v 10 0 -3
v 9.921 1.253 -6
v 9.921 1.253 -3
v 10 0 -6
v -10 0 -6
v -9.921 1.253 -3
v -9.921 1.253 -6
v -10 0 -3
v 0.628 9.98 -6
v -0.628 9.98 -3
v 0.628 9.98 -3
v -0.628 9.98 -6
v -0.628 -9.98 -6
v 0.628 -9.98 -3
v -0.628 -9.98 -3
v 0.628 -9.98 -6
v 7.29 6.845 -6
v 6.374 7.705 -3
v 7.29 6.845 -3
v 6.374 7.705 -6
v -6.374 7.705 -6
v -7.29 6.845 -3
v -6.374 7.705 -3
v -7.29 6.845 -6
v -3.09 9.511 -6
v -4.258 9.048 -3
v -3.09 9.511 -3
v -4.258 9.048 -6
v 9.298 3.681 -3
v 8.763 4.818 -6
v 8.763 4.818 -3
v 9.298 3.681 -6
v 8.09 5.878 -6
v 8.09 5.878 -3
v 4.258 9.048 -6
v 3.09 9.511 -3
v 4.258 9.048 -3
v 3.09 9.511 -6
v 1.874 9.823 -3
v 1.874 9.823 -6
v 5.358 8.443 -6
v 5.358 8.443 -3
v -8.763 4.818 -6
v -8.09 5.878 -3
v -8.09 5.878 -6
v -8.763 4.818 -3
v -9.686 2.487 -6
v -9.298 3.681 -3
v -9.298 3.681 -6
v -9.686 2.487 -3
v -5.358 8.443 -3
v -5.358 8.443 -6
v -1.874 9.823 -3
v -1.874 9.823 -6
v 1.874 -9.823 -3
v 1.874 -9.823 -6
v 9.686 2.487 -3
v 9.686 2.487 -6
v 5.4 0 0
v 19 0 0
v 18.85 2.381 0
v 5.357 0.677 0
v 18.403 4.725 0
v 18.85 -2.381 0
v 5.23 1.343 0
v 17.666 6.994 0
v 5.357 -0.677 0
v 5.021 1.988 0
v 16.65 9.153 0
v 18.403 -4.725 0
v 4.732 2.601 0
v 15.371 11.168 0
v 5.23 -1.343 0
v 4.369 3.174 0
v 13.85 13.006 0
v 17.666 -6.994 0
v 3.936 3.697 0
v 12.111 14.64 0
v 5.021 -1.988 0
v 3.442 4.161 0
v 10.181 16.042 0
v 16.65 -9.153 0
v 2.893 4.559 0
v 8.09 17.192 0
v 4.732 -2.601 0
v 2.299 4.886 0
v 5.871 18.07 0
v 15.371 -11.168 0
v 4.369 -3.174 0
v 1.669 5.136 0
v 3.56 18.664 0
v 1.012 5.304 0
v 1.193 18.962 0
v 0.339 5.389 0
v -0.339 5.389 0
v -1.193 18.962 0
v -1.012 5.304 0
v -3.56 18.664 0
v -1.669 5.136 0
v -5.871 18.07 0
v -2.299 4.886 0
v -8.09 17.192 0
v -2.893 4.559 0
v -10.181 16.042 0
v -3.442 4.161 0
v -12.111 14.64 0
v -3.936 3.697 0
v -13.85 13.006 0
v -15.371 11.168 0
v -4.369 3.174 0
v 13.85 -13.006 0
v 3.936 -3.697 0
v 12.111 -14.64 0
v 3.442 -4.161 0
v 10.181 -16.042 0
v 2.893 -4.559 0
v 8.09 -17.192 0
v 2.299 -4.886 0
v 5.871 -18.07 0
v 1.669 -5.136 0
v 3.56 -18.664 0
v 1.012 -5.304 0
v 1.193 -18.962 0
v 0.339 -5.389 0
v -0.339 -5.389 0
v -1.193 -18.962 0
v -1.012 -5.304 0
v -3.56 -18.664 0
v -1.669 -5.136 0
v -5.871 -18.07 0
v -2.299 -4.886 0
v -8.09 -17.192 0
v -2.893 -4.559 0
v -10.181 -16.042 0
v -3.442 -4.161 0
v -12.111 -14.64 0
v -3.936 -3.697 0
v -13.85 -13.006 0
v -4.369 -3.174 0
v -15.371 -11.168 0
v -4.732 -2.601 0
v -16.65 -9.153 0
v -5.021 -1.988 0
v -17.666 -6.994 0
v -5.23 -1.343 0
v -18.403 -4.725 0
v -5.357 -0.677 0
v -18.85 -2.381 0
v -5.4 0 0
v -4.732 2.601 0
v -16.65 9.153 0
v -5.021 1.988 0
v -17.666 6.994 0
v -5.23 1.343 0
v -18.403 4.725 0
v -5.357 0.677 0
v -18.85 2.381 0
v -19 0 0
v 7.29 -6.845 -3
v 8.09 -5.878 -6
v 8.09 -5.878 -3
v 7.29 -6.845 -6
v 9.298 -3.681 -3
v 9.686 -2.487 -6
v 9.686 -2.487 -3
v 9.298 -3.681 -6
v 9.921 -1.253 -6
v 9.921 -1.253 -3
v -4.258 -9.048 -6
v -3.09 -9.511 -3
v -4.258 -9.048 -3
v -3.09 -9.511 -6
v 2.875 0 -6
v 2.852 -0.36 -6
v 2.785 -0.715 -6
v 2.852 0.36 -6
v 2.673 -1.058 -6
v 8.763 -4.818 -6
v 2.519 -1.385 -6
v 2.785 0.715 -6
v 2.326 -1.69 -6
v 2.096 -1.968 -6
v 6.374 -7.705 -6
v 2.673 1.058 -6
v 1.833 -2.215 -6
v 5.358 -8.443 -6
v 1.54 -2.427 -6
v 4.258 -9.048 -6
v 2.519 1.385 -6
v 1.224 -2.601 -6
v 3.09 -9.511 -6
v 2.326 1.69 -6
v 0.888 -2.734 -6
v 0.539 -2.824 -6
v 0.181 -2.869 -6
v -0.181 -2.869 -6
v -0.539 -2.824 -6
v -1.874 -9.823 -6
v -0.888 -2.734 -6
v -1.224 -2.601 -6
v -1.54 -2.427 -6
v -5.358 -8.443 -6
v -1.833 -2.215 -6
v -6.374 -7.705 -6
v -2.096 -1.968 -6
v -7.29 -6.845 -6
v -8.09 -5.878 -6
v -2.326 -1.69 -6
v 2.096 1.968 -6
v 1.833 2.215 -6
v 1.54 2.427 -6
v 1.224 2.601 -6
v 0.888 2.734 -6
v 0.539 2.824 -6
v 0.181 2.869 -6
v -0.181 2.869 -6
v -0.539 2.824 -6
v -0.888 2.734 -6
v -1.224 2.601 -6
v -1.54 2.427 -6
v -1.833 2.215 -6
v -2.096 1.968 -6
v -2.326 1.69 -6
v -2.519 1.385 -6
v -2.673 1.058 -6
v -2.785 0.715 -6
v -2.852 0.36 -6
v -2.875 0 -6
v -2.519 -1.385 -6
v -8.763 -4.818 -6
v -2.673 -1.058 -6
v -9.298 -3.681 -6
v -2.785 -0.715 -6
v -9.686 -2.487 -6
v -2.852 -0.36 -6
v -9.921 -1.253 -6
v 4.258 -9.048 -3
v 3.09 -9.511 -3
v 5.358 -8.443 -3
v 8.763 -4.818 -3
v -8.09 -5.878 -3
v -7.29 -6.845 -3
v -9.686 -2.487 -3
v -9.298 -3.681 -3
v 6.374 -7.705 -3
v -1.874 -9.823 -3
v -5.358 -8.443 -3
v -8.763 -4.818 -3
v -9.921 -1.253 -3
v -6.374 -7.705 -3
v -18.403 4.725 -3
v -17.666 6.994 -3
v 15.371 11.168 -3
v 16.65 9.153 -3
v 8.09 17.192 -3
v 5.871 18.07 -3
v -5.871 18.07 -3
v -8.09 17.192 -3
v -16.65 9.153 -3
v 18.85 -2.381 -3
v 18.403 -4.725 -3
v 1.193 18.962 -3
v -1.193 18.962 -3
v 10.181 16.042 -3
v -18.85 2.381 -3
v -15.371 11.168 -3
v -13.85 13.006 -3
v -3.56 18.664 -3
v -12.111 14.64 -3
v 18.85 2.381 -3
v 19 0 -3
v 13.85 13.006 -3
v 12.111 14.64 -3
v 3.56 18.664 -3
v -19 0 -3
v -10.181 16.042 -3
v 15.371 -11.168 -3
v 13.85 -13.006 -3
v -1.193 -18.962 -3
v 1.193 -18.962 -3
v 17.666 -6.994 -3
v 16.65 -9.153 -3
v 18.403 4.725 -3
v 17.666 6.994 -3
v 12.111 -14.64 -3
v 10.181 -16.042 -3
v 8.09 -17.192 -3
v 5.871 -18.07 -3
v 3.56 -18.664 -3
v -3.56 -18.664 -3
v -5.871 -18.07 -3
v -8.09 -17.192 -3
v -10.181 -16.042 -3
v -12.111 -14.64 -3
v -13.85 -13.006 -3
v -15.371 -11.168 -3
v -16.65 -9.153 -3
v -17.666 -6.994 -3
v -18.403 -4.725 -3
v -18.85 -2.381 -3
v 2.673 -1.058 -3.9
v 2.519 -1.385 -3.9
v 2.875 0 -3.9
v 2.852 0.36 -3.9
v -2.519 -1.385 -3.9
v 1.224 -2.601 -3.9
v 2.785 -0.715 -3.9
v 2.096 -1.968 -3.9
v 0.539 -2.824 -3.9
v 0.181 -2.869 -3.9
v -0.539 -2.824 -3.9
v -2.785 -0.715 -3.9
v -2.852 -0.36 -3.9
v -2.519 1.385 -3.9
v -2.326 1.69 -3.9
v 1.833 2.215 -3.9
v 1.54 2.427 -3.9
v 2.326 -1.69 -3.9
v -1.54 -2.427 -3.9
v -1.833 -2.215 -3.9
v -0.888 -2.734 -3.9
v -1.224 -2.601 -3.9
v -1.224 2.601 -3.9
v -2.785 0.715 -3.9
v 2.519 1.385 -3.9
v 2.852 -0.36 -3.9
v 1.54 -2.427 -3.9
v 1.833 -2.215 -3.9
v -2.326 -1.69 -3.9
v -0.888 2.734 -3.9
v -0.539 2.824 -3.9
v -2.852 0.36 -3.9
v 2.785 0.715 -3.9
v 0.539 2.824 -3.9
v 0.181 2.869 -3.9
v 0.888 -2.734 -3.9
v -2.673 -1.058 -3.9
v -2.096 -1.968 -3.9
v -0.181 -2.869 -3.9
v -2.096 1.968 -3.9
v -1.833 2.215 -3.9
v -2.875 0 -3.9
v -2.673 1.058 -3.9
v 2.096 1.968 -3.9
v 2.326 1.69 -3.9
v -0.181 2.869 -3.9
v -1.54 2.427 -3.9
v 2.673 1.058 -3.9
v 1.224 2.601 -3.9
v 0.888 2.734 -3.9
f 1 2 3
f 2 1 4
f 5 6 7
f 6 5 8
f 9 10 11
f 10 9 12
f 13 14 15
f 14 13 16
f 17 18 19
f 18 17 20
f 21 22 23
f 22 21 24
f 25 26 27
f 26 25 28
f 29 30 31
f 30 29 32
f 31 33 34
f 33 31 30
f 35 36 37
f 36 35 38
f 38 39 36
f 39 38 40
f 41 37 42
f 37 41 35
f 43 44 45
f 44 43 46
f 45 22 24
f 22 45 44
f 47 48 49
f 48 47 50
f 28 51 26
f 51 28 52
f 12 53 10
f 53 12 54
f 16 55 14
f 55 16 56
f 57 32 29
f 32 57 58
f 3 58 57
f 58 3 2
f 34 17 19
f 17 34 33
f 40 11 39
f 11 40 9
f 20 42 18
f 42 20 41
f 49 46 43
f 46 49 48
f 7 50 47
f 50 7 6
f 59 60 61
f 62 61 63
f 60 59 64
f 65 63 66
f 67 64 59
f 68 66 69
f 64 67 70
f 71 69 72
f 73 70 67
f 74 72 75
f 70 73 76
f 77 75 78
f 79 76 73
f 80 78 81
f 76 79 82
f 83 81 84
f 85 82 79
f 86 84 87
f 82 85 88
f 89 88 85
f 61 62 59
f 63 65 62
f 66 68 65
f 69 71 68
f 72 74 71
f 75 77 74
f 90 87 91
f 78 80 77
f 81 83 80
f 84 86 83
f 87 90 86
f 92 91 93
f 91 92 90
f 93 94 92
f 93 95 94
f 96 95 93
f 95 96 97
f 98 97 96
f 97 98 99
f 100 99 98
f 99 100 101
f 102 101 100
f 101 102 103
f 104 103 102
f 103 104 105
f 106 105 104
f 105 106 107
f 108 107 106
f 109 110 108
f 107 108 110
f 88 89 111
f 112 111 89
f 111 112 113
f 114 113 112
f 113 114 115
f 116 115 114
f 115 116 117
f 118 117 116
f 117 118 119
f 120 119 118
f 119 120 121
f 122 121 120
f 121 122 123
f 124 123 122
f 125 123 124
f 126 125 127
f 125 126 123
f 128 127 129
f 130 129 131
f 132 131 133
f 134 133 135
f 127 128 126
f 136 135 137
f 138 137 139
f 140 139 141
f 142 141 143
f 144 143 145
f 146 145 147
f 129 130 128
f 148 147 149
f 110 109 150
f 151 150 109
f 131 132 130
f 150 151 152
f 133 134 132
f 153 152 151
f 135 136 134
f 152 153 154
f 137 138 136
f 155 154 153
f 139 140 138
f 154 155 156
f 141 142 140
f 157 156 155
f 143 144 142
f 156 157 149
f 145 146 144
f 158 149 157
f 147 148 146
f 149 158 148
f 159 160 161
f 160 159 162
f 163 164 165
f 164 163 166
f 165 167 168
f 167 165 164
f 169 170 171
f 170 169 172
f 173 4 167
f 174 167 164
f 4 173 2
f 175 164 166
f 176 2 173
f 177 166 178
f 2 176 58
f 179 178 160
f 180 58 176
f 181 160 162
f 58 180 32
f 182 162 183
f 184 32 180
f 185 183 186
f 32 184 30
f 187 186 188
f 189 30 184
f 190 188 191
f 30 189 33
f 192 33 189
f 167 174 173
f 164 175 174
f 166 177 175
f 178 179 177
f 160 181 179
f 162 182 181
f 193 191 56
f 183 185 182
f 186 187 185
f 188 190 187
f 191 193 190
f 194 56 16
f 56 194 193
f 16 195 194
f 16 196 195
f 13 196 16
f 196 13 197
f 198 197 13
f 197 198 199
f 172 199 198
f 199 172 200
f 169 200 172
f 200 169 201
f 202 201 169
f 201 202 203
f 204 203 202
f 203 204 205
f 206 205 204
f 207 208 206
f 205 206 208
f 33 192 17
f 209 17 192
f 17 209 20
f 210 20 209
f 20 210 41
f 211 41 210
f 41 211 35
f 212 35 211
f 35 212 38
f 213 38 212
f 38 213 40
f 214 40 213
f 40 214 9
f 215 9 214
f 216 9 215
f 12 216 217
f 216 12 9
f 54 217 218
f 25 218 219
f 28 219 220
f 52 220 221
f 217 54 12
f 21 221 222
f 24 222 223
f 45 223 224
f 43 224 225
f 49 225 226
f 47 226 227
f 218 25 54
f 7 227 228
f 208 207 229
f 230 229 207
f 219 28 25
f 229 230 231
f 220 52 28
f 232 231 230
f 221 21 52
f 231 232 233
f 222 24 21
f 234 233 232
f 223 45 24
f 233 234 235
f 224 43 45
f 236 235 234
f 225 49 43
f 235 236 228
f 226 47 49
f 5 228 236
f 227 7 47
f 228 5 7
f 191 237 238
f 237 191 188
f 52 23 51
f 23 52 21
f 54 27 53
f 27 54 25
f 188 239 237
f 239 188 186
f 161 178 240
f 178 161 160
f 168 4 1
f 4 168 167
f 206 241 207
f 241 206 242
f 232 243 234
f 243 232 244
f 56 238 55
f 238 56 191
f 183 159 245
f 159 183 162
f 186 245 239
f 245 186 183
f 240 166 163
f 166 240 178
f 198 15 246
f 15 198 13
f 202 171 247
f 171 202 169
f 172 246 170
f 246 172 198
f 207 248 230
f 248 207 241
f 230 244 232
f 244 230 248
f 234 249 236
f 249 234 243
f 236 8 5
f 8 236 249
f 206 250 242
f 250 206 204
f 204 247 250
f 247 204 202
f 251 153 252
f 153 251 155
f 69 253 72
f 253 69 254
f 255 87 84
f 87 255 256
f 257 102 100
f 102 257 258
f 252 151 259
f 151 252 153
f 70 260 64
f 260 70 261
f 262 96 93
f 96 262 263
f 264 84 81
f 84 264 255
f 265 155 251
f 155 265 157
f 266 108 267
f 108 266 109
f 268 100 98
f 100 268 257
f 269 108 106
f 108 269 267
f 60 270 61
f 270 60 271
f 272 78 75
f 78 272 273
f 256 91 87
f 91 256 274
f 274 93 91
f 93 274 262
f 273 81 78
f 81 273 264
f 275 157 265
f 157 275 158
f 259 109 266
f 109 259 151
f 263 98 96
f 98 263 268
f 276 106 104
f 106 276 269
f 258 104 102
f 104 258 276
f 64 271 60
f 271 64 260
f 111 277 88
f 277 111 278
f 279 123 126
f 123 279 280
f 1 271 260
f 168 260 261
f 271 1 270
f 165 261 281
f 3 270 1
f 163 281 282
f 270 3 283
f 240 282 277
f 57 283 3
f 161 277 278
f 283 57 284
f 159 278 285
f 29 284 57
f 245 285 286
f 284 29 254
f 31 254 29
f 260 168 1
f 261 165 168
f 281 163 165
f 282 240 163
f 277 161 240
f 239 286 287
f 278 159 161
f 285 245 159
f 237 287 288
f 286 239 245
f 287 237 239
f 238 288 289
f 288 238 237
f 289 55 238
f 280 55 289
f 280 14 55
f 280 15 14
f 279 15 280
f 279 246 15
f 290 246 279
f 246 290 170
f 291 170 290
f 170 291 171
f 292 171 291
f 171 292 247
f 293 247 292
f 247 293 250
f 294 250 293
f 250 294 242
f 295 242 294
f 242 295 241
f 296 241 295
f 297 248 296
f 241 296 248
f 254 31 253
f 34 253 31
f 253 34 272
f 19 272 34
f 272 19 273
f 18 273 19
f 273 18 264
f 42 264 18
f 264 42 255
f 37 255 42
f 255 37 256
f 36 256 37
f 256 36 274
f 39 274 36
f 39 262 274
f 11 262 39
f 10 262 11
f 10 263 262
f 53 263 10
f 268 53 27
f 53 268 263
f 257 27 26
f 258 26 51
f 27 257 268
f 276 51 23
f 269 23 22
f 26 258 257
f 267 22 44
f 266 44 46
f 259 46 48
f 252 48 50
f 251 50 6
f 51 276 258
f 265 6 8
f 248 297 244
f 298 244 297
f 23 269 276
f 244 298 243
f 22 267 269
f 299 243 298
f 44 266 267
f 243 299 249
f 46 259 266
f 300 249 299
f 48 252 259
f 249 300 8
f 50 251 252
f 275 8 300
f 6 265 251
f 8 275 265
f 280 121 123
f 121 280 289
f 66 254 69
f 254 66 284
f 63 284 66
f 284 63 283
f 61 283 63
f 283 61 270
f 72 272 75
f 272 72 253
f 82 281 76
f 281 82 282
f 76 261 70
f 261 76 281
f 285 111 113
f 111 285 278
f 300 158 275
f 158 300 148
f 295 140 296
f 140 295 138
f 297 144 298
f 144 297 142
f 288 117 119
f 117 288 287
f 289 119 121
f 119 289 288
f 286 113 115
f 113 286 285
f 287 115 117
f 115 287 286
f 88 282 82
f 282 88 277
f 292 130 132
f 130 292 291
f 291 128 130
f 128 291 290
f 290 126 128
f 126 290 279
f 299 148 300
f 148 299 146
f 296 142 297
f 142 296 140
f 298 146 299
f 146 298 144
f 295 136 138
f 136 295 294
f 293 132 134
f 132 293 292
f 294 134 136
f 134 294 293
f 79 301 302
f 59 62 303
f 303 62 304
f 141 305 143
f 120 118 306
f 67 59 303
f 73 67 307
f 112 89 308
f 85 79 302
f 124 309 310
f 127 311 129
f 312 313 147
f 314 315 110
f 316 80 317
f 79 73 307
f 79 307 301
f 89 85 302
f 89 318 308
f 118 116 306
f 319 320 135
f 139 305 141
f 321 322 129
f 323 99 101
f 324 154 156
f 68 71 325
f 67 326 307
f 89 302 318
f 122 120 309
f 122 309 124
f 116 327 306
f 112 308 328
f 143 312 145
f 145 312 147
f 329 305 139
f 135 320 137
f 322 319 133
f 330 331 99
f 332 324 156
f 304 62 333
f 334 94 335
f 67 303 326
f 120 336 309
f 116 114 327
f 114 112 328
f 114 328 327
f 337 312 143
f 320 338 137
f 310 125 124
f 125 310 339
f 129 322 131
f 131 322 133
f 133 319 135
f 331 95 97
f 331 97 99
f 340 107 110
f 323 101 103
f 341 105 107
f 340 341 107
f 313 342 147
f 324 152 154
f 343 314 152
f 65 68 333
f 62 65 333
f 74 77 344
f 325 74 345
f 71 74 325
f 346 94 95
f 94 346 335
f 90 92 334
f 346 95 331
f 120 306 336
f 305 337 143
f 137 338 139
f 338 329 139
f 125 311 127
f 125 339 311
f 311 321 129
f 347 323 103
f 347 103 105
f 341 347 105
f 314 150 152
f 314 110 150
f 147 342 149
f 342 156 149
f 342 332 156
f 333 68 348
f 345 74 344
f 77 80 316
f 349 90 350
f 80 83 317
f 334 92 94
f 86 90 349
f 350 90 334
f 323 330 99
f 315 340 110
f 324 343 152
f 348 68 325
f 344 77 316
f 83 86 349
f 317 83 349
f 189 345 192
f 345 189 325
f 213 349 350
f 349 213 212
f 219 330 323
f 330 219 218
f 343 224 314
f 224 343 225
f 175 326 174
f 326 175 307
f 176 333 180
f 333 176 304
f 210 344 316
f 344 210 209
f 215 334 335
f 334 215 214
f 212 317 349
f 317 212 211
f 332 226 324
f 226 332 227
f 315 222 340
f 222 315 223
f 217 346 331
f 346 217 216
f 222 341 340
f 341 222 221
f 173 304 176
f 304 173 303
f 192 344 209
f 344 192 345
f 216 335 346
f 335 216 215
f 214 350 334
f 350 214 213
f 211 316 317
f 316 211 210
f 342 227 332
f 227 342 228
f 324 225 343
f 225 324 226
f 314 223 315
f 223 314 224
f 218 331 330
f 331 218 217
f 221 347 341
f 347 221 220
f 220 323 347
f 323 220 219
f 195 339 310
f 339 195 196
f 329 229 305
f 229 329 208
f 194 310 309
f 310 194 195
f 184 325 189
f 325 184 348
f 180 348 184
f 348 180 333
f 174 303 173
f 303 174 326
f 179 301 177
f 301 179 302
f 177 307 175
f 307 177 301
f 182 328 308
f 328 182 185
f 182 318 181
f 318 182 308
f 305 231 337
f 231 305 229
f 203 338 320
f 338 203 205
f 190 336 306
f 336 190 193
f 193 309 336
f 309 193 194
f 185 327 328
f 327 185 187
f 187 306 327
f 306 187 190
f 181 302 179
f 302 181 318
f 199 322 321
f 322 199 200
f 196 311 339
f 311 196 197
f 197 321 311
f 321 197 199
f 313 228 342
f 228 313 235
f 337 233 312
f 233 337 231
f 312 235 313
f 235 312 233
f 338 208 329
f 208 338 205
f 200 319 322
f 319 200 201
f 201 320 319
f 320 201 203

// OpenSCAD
$fn = 50;


difference() {
	union() {
		translate(v = [0, 0, -6.0000000000]) {
			cylinder(h = 6, r = 10.0000000000);
		}
		translate(v = [0, 0, -3.0000000000]) {
			cylinder(h = 3, r = 19.0000000000);
		}
	}
	union() {
		translate(v = [0, 0, 0]) {
			rotate(a = [0, 0, 0]) {
				difference() {
					union() {
						#translate(v = [0, 0, -6.0000000000]) {
							cylinder(h = 6, r = 2.6000000000);
						}
						#translate(v = [0, 0, -3.9000000000]) {
							cylinder(h = 3.9000000000, r = 10.0000000000, r1 = 2.8750000000, r2 = 5.4000000000);
						}
						#translate(v = [0, 0, -6.0000000000]) {
							cylinder(h = 6, r = 2.8750000000);
						}
						#translate(v = [0, 0, -6.0000000000]) {
							cylinder(h = 6, r = 2.6000000000);
						}
					}
					union();
				}
			}
		}
	}
}
